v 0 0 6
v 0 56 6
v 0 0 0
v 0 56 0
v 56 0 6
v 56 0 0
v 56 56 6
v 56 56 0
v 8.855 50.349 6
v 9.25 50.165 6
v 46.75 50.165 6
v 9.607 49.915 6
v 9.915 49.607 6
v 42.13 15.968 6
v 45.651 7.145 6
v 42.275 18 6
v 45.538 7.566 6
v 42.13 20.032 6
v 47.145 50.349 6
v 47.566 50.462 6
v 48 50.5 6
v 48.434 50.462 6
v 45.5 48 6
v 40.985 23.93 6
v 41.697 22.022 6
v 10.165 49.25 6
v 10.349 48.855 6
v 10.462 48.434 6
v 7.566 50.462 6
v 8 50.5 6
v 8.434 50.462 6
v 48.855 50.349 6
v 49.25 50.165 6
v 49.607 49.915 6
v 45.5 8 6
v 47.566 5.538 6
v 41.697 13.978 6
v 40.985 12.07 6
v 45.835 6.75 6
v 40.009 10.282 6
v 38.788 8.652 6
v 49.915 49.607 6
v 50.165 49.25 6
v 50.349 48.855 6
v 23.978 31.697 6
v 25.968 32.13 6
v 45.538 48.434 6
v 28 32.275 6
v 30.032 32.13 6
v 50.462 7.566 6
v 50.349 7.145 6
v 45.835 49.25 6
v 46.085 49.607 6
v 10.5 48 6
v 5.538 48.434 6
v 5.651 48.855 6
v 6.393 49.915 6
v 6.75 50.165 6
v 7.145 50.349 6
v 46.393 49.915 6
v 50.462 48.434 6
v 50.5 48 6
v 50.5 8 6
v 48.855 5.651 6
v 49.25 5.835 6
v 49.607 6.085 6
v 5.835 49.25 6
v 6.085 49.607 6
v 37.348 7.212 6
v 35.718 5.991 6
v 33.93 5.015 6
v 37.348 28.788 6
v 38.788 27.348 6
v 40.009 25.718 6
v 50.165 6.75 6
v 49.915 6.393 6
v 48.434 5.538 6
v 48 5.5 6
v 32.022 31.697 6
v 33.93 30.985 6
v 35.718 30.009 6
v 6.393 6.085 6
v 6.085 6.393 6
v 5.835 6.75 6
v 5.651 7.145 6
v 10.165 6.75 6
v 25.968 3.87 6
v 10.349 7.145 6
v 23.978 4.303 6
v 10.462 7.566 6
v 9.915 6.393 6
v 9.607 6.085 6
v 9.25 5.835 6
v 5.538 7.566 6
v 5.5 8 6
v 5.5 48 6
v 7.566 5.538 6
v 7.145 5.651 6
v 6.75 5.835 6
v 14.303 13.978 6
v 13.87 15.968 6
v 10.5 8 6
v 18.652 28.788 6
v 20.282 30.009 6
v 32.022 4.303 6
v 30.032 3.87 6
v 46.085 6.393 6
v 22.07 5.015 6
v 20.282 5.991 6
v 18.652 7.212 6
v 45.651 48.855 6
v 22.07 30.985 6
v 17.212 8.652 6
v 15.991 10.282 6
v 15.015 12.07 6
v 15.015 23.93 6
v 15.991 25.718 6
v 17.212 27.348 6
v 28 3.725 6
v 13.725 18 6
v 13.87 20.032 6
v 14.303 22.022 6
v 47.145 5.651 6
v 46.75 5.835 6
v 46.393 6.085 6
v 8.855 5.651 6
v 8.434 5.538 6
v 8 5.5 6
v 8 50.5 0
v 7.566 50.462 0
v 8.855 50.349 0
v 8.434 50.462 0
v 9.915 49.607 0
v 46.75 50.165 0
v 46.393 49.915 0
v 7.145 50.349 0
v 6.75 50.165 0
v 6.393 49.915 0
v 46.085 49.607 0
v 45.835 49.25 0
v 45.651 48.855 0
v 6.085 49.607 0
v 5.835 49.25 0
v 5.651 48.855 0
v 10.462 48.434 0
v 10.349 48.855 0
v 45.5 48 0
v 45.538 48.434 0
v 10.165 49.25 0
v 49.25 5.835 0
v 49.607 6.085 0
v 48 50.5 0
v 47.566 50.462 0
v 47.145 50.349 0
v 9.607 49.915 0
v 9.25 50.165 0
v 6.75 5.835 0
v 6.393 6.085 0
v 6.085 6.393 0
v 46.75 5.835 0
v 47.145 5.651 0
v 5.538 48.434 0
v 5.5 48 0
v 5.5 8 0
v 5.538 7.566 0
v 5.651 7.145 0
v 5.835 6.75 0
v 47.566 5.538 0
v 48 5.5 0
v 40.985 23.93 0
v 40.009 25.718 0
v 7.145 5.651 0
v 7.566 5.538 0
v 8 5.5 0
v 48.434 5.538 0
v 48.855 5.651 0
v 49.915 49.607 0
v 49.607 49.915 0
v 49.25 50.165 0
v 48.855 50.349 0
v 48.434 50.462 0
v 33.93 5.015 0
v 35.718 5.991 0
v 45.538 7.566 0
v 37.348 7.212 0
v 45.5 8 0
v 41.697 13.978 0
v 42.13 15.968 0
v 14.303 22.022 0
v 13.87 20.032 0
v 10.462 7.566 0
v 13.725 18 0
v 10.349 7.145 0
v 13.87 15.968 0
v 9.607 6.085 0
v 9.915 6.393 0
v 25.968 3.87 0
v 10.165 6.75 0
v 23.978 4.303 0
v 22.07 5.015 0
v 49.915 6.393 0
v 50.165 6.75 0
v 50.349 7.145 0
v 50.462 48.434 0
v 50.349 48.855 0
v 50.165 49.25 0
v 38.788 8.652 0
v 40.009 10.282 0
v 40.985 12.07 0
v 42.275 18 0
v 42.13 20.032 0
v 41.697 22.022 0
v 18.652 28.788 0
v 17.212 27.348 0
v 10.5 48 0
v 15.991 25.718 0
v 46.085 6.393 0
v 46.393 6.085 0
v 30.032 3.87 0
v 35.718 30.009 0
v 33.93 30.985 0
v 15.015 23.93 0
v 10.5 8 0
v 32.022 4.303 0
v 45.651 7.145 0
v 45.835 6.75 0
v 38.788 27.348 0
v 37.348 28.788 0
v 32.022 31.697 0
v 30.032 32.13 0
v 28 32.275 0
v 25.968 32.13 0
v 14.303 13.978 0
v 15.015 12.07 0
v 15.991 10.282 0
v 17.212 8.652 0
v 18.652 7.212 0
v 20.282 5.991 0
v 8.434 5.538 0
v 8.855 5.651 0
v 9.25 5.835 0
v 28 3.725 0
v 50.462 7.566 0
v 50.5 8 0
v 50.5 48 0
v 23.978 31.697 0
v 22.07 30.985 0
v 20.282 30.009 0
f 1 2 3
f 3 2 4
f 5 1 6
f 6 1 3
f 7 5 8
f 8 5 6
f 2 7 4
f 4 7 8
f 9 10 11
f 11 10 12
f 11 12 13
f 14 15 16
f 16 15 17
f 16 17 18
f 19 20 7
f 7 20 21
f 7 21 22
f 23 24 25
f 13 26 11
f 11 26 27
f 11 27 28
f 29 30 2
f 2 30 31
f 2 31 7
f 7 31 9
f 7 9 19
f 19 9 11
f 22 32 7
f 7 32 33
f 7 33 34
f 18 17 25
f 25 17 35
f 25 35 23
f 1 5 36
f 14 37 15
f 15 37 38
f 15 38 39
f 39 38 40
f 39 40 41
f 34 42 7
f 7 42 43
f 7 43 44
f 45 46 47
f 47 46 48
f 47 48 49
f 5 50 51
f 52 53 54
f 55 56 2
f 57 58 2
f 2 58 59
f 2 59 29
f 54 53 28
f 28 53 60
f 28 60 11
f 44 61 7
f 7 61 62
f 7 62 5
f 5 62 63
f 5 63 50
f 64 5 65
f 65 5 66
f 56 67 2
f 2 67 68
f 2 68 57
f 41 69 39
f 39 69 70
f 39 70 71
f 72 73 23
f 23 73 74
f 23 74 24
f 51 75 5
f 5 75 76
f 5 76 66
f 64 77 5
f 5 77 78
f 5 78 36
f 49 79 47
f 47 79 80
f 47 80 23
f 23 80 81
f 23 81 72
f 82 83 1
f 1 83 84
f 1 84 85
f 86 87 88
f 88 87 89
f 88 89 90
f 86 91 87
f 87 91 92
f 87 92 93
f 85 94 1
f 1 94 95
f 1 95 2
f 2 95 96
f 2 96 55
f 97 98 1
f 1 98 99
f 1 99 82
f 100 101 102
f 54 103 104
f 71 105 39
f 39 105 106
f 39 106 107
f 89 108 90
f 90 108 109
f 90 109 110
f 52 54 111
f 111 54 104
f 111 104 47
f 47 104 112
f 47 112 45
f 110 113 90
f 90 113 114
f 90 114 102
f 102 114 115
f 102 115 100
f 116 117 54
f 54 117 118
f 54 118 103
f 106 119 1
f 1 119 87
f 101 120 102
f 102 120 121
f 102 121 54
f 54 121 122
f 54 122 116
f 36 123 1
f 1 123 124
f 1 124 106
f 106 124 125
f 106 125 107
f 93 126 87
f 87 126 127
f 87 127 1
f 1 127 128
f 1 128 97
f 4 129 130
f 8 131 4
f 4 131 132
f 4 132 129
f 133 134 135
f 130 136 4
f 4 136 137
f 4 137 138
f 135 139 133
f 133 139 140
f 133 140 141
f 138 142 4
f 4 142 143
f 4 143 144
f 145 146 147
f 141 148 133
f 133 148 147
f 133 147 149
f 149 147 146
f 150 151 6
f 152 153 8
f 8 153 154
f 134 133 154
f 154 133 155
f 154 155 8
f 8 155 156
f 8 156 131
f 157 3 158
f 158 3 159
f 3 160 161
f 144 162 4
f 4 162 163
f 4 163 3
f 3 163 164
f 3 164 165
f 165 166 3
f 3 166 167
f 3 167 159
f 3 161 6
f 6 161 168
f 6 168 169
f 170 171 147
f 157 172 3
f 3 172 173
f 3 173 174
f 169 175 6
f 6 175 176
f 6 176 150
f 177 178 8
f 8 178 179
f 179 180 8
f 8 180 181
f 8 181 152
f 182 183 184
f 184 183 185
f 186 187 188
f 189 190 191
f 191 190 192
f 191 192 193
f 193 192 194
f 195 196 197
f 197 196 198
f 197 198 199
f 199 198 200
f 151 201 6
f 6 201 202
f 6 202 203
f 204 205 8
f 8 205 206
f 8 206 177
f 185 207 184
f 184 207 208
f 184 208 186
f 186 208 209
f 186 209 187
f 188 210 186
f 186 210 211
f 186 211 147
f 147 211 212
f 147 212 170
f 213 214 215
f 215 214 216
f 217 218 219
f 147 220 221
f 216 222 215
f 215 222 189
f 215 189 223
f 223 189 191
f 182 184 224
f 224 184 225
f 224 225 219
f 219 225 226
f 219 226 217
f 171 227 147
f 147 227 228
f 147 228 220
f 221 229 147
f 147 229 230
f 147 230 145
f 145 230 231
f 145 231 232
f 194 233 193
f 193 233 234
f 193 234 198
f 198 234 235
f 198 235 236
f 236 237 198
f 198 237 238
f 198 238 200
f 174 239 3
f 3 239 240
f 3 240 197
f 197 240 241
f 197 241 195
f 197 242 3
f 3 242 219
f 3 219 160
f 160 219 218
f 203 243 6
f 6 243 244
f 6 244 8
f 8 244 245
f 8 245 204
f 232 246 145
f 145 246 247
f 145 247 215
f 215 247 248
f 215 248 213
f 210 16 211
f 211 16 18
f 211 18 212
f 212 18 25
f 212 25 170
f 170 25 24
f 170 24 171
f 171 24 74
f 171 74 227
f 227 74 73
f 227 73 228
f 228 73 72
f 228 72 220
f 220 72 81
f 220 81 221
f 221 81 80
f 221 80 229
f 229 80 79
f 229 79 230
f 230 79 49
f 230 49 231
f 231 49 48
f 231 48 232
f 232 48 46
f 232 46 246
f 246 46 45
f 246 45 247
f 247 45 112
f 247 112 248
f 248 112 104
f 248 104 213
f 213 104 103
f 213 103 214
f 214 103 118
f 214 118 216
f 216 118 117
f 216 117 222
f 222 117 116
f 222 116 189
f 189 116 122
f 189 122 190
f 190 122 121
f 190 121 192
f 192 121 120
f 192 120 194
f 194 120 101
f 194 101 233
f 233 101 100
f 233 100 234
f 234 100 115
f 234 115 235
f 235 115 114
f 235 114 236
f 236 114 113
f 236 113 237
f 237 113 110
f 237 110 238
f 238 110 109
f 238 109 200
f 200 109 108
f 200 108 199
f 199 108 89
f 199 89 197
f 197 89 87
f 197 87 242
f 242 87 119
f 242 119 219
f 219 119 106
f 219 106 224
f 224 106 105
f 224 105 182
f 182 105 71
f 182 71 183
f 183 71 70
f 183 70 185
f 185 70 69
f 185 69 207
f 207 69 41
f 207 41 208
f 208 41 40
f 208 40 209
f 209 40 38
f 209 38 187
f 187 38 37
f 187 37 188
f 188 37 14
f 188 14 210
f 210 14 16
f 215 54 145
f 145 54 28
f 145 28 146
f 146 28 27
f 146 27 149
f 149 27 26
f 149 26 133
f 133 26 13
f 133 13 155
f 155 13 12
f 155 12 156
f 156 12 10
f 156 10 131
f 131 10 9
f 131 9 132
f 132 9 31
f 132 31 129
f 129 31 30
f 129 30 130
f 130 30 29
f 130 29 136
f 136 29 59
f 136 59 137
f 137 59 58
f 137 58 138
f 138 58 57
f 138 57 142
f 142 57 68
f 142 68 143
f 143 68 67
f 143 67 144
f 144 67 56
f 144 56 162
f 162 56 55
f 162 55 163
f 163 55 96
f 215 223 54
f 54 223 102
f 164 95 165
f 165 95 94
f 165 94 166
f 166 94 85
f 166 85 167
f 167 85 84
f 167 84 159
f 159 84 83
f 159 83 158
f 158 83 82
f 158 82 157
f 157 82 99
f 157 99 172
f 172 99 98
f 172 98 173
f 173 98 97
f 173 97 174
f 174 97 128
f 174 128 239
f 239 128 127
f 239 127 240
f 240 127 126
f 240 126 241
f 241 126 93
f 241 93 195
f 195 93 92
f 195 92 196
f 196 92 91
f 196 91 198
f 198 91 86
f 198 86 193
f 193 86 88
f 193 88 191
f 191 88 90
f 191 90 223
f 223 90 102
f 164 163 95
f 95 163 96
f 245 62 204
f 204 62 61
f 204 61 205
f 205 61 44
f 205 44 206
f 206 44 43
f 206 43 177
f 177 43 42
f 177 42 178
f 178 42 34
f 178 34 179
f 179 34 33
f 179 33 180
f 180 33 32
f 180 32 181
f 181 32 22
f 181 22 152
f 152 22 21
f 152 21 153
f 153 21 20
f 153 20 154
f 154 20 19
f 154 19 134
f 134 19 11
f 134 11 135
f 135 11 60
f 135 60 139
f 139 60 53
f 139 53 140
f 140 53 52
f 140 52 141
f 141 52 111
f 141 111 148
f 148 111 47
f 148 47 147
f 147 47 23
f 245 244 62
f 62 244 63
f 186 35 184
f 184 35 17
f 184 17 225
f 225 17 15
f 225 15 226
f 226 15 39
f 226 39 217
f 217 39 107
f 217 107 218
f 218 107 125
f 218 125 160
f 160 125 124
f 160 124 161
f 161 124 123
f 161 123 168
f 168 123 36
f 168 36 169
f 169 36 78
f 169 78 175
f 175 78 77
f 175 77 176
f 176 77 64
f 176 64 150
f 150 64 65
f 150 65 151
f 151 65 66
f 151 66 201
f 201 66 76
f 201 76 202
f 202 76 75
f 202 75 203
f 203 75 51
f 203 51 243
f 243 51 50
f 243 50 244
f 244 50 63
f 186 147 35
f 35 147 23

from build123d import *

# Parameters (mm, degrees)
SKETCH1_W           = 56
SKETCH1_H           = 56
BOSS_EXTRUDE1_DEPTH = 6
SKETCH2_R           = 14.275
CUT_EXTRUDE1_DEPTH  = 6


with BuildPart() as part:
    # Sketch1 → Boss-Extrude1 (new body)
    with BuildSketch(Plane.XY):
        with Locations((28, 28)):
            Rectangle(SKETCH1_W, SKETCH1_H)
    extrude(amount=BOSS_EXTRUDE1_DEPTH)

    # Sketch2 → Cut-Extrude1 (cut)
    with BuildSketch(Plane.XY.offset(6)):
        with Locations((28, 18)):
            Circle(SKETCH2_R)
        with BuildLine():
            Line((10.5, 48), (10.5, 8))
            ThreePointArc((10.5, 8), (8, 5.5), (5.5, 8))
            Line((5.5, 8), (5.5, 48))
            ThreePointArc((5.5, 48), (8, 50.5), (10.5, 48))
        make_face()
        with BuildLine():
            Line((50.5, 48), (50.5, 8))
            ThreePointArc((50.5, 8), (48, 5.5), (45.5, 8))
            Line((45.5, 8), (45.5, 48))
            ThreePointArc((45.5, 48), (48, 50.5), (50.5, 48))
        make_face()
    extrude(amount=-CUT_EXTRUDE1_DEPTH, mode=Mode.SUBTRACT)


solid = part.part
